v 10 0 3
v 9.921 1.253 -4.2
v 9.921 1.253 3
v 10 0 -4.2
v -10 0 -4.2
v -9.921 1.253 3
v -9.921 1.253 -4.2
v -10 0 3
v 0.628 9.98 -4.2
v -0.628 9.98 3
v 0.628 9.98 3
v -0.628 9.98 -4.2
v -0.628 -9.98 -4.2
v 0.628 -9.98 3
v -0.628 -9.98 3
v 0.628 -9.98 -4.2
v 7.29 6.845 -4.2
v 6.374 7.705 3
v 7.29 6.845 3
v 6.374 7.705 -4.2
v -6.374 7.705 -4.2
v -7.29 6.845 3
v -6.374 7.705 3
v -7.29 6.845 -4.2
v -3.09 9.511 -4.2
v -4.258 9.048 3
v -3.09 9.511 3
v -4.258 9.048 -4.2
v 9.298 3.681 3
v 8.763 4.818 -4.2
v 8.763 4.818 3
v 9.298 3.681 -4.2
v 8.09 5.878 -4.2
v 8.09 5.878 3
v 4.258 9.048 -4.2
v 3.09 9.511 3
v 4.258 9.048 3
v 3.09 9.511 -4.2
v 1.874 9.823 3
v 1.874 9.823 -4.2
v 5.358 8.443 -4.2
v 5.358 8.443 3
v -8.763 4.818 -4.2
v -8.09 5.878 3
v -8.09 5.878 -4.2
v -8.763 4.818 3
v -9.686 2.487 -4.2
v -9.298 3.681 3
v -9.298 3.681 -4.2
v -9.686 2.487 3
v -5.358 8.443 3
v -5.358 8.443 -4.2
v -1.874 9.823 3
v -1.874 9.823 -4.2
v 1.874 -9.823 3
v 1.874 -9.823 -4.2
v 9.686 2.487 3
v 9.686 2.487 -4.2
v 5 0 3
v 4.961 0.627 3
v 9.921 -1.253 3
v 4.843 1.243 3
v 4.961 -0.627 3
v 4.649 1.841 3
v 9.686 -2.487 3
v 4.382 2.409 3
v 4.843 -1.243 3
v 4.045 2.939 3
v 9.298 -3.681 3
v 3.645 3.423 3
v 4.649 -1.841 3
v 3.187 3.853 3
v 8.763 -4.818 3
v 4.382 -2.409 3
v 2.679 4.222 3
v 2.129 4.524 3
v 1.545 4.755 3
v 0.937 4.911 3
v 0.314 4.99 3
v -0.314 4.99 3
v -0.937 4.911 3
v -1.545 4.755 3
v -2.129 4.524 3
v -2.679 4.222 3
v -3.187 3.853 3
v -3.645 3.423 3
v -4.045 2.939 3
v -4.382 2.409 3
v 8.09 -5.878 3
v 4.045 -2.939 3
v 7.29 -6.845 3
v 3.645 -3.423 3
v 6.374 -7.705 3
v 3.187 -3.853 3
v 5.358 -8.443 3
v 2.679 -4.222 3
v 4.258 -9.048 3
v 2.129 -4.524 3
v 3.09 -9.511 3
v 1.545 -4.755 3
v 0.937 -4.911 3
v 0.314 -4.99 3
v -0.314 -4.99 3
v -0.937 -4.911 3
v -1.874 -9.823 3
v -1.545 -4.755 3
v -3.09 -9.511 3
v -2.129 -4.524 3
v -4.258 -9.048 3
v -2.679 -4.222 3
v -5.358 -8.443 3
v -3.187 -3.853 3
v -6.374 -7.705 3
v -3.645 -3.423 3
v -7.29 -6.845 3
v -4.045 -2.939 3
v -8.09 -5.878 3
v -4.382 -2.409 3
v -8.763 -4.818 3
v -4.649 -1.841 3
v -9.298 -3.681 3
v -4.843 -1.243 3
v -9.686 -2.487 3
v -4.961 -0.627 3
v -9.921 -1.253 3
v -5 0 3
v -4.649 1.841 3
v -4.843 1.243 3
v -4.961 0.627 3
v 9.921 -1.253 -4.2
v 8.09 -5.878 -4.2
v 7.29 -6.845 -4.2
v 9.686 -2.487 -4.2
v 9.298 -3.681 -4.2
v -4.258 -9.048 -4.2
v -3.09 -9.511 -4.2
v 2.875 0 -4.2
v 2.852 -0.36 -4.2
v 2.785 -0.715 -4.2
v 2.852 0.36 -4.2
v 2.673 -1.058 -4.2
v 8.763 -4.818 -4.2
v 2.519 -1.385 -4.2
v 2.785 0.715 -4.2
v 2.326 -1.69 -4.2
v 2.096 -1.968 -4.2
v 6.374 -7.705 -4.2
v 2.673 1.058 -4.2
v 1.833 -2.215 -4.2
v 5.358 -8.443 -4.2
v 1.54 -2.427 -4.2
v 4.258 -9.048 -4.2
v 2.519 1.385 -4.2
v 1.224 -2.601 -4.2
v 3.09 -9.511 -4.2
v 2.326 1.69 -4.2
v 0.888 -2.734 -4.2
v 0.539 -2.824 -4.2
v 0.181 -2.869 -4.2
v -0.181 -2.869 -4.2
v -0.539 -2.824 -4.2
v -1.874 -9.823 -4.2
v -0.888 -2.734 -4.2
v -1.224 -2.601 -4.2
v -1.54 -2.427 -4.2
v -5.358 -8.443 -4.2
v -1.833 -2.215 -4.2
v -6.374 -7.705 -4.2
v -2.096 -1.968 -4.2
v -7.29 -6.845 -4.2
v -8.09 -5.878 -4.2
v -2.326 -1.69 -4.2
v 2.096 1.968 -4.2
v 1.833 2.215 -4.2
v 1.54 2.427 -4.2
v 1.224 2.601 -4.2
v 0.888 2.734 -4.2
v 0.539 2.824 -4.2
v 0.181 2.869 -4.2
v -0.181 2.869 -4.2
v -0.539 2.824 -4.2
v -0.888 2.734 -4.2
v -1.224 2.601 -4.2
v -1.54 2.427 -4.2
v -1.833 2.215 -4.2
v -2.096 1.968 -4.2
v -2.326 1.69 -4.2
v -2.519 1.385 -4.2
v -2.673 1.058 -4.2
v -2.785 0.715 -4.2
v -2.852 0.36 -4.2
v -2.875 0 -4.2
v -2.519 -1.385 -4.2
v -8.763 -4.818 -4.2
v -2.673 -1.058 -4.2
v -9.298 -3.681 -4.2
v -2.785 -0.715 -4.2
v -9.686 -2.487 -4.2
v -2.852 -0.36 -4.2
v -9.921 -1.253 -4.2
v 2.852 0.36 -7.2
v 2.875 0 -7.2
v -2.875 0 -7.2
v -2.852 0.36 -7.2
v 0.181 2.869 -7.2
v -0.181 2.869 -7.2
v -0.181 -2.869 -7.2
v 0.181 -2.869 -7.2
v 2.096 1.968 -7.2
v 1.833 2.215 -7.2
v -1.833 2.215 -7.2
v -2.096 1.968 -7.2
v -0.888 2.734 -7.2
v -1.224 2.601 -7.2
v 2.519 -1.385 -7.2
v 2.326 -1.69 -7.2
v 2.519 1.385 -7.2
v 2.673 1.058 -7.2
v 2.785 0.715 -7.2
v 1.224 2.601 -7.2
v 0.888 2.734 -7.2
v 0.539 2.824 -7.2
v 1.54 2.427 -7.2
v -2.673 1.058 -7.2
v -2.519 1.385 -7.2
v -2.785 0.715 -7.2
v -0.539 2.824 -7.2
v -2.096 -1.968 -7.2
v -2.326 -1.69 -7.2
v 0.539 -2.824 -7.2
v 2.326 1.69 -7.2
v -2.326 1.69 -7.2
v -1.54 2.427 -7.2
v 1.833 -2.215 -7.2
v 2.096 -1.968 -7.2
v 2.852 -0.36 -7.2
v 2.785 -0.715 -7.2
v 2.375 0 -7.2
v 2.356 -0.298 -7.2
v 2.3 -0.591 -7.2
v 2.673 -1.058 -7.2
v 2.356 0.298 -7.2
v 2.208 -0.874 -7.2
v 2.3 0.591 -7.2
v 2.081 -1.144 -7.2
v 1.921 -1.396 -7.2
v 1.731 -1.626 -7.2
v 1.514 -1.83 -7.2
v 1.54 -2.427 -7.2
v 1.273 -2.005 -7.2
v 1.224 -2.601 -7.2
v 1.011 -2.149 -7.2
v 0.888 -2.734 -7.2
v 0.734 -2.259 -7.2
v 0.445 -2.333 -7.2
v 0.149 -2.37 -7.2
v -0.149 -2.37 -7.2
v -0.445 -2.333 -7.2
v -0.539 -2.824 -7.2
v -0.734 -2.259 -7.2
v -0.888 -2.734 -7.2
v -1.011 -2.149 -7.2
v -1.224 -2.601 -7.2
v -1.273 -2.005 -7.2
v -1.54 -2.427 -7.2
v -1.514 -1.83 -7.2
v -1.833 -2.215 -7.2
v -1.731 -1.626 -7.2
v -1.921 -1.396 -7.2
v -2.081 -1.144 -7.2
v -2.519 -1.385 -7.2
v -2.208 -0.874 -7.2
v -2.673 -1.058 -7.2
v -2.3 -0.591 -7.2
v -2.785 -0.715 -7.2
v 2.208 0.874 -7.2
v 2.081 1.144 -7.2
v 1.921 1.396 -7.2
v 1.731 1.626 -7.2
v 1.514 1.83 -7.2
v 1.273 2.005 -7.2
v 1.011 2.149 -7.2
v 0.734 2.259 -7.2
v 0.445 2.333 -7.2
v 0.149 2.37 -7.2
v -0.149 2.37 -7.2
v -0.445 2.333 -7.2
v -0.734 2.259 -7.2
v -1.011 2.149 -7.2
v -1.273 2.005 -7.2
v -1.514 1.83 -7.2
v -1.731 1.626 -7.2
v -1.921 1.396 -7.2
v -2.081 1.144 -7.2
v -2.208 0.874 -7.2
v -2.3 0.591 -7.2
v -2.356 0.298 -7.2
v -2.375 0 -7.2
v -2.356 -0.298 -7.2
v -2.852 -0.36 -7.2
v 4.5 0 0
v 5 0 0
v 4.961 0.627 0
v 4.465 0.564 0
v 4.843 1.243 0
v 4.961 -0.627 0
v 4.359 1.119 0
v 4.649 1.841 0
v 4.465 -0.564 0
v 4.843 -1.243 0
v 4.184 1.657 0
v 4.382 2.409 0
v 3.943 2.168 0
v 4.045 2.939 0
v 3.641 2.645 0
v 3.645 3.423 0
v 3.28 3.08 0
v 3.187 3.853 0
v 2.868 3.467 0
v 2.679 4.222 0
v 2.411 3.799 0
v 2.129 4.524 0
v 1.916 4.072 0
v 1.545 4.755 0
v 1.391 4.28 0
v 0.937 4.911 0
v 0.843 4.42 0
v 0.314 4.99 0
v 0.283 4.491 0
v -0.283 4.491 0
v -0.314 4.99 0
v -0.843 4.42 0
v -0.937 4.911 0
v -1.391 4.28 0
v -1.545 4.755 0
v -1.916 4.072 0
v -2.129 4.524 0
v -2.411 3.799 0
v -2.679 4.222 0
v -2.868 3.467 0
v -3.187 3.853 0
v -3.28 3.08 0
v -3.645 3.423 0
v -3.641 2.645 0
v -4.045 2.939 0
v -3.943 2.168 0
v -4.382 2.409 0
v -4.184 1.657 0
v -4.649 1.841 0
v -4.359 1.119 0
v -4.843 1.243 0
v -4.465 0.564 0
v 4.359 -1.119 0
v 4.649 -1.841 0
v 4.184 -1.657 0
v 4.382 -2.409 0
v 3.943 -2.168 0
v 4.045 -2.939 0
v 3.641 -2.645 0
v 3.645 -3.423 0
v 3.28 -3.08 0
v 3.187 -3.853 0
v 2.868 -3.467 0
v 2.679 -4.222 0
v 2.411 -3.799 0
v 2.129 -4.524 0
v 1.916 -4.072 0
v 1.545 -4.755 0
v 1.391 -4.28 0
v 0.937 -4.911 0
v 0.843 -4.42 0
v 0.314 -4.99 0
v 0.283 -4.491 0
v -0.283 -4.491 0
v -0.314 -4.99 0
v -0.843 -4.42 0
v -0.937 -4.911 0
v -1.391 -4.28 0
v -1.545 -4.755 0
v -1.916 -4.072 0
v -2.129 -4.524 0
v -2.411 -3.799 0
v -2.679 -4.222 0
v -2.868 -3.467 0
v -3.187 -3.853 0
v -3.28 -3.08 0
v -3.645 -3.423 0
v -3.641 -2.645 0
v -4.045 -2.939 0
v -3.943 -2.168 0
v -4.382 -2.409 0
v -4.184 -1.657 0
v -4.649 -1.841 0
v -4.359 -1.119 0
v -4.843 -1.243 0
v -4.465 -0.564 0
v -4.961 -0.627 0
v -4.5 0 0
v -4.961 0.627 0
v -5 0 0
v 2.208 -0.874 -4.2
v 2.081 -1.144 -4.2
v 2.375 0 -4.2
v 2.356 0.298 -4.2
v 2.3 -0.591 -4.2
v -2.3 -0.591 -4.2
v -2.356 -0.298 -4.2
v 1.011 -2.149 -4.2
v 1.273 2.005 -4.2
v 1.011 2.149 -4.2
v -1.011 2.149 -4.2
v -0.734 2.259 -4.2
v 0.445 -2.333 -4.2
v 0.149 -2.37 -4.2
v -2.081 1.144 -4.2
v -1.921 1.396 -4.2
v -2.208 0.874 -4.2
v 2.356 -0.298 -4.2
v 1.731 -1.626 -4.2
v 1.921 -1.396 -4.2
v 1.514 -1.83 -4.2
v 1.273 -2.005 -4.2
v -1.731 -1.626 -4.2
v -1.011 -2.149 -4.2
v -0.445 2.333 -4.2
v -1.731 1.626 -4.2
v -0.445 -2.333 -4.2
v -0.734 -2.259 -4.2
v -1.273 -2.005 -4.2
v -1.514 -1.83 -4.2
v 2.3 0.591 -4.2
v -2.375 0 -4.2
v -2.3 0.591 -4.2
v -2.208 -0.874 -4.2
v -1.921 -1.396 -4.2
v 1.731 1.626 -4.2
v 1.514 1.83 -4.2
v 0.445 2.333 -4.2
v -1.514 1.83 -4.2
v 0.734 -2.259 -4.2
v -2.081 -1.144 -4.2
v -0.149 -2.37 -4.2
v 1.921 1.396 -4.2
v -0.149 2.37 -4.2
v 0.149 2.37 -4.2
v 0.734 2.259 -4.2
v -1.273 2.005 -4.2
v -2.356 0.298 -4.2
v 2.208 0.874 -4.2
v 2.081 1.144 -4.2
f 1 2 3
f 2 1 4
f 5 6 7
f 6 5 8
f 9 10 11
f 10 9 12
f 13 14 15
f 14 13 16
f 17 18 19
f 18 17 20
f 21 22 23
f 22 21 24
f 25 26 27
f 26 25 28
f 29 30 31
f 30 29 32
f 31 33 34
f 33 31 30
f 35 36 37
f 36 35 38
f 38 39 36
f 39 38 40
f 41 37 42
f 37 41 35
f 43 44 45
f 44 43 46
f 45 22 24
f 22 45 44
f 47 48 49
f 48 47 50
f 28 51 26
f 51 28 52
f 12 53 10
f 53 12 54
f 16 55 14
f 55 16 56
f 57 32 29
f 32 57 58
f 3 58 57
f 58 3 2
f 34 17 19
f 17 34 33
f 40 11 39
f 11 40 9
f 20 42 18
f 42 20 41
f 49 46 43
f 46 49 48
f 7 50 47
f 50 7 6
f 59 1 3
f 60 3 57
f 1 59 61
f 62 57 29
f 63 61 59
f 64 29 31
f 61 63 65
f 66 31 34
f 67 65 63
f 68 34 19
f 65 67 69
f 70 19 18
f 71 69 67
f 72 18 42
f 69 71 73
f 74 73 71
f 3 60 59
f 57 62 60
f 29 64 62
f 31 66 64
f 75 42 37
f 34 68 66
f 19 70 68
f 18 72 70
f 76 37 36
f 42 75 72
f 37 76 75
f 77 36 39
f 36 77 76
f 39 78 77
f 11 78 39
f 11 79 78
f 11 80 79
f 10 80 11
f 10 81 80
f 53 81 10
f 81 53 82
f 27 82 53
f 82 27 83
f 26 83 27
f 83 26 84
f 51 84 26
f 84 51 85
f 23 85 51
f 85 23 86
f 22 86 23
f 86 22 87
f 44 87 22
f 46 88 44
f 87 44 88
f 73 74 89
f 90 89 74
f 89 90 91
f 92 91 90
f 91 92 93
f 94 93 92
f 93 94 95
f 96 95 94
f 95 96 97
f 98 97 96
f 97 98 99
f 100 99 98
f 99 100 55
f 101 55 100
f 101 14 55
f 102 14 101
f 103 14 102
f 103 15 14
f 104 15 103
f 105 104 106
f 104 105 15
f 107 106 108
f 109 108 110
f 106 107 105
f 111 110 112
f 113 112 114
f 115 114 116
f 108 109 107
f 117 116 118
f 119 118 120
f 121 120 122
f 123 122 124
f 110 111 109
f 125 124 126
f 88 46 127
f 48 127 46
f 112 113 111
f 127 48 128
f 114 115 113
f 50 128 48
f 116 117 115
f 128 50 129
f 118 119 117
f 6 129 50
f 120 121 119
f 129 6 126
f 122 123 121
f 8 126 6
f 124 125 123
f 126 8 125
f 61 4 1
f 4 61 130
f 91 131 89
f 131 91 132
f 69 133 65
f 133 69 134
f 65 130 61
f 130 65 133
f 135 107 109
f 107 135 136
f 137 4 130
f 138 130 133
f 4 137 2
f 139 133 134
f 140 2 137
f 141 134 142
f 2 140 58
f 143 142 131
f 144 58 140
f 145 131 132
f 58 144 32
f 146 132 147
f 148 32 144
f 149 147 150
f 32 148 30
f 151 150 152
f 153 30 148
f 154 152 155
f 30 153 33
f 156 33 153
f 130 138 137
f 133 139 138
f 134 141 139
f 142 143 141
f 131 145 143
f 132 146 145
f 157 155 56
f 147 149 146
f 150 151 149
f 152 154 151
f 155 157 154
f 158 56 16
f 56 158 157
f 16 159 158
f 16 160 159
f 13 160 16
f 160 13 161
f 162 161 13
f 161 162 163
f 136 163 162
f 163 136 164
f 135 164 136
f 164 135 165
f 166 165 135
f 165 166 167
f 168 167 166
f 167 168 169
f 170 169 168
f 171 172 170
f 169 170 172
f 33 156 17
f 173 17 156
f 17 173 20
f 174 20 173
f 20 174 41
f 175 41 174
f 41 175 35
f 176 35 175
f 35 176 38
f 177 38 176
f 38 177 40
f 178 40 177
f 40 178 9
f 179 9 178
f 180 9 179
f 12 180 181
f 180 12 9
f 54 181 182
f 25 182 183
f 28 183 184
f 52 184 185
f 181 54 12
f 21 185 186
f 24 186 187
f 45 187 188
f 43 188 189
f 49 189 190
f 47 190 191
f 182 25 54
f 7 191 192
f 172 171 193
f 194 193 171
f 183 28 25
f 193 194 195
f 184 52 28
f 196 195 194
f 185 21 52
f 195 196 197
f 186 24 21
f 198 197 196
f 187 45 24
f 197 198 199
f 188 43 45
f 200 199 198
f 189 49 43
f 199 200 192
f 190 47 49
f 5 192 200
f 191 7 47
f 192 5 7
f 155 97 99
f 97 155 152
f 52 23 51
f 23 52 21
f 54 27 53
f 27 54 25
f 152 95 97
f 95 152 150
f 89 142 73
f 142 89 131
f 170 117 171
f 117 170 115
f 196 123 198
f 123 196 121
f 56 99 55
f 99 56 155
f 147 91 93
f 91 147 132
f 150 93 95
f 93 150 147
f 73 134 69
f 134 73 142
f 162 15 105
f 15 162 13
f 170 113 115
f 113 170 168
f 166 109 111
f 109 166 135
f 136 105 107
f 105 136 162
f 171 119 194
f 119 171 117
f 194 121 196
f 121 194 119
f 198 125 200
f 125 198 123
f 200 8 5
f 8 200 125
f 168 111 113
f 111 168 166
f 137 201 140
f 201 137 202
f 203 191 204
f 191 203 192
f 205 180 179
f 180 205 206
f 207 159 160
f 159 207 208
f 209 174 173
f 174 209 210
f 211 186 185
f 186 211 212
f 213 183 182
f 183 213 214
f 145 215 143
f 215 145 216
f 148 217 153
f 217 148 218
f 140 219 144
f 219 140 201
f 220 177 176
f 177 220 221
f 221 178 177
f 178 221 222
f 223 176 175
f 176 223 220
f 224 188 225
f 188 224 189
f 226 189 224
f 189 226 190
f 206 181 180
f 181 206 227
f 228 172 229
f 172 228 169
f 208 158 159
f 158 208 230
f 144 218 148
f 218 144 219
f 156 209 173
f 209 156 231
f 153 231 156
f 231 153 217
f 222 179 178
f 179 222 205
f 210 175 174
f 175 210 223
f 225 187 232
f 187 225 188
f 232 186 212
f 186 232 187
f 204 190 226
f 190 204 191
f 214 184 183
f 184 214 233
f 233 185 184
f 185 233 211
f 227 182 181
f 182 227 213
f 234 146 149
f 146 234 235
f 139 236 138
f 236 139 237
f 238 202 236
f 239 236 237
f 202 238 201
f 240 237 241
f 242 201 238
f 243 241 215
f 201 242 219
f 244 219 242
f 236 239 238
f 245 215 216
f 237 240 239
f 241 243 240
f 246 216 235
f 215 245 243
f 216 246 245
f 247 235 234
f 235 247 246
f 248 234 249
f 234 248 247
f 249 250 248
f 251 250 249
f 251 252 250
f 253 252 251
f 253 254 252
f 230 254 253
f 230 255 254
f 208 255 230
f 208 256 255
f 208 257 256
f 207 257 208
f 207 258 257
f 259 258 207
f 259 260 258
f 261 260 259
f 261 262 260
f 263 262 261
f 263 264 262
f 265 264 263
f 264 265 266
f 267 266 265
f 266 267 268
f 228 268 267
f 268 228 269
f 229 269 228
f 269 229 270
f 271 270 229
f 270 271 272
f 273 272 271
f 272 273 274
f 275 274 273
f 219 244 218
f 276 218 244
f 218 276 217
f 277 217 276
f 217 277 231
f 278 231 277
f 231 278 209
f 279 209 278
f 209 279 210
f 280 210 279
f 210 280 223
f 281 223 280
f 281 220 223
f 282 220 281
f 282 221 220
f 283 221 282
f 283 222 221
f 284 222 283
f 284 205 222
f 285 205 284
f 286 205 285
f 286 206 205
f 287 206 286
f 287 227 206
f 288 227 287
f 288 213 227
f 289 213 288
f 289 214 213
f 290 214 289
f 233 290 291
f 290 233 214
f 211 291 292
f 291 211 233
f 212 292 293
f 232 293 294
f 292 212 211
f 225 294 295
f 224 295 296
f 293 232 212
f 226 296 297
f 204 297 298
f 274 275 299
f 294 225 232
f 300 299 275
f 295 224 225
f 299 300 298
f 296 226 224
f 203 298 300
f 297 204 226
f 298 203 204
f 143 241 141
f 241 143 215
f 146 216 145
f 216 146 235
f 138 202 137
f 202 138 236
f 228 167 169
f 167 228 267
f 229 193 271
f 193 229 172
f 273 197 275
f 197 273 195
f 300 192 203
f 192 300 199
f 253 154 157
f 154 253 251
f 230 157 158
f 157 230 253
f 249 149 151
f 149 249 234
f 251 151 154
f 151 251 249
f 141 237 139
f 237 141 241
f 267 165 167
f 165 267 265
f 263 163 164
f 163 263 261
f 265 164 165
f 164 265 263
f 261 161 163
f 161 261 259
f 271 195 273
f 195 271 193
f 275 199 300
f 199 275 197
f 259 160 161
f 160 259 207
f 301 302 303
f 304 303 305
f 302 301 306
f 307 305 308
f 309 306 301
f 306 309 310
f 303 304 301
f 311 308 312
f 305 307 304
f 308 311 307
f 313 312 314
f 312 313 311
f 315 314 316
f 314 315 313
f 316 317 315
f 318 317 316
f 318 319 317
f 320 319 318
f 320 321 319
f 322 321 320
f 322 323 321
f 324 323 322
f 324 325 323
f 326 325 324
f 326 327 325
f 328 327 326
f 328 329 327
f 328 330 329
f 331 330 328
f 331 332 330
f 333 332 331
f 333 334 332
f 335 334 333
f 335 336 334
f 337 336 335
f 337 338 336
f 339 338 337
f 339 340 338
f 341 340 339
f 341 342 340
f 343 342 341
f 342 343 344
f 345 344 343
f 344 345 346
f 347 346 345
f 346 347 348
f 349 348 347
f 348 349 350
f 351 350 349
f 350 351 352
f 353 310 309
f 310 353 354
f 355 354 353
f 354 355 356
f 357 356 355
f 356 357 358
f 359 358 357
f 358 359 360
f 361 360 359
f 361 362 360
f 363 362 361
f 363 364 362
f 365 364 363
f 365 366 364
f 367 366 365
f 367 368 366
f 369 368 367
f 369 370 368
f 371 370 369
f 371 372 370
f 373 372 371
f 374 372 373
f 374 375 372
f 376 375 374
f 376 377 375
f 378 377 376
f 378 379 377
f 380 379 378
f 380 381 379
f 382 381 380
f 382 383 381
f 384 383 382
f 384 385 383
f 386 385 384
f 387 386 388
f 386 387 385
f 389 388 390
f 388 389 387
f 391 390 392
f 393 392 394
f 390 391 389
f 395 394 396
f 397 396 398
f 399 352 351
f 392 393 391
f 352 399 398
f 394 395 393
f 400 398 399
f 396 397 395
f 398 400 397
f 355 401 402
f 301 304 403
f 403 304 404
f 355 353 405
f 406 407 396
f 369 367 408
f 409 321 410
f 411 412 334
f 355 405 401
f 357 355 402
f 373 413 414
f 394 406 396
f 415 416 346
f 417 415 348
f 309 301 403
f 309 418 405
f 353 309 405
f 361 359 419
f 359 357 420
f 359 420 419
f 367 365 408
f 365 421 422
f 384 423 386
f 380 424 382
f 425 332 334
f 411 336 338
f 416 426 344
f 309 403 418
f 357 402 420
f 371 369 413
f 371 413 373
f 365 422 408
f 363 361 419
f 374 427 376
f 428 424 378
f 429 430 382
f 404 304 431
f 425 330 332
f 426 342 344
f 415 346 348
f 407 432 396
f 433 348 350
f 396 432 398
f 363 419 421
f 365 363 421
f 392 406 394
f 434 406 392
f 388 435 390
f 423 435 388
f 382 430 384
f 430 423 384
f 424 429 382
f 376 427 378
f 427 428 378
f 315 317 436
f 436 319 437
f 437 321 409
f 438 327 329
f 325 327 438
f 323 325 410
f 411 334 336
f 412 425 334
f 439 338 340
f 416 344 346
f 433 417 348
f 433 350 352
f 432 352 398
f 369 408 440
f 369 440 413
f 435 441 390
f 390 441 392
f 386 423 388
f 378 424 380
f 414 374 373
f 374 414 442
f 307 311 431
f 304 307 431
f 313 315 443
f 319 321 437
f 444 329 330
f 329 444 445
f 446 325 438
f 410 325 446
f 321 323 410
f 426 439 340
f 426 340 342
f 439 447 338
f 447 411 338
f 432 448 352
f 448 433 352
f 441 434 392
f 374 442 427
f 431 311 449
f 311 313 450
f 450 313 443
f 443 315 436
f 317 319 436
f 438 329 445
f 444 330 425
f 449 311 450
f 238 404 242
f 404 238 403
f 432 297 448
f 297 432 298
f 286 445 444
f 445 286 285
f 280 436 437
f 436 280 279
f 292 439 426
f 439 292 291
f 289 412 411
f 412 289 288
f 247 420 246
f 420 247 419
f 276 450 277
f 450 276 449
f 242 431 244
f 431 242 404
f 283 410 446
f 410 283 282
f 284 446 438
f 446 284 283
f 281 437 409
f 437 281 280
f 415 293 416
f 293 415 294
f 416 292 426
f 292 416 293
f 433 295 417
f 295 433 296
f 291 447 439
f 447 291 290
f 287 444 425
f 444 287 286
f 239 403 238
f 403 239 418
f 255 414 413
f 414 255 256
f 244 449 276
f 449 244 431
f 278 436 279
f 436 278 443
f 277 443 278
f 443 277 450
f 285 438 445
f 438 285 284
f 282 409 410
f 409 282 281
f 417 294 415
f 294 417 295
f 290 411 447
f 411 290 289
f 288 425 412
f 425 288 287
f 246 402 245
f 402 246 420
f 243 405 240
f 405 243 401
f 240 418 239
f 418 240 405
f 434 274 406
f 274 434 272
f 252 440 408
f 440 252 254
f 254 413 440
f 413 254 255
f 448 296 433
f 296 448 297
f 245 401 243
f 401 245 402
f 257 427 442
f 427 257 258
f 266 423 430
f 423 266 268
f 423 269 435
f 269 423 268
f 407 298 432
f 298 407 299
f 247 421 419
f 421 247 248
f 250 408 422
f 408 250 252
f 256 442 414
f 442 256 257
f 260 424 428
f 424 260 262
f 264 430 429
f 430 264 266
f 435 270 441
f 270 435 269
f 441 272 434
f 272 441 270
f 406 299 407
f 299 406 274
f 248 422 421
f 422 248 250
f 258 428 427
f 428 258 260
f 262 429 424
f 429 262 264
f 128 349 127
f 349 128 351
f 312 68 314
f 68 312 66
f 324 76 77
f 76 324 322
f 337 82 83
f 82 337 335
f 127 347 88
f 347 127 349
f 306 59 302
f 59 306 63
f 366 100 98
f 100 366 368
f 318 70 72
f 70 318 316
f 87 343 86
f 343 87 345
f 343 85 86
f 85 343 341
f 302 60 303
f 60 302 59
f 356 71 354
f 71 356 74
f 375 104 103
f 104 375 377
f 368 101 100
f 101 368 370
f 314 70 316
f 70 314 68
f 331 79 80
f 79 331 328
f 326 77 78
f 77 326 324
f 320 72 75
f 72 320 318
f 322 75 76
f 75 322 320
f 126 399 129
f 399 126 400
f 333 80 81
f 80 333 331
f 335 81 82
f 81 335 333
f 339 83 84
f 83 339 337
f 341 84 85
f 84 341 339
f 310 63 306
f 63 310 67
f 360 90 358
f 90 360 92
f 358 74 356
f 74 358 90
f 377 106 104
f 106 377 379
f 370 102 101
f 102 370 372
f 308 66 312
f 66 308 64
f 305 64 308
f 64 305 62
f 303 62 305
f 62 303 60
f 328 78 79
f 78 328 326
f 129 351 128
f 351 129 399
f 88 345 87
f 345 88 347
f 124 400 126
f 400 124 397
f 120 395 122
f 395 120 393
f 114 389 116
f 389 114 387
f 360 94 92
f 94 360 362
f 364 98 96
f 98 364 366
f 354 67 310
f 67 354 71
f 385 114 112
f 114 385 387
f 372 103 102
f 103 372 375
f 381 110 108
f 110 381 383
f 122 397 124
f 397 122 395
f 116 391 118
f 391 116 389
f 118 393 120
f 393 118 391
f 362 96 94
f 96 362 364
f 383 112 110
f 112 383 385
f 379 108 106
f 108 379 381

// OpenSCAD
$fn = 50;


difference() {
	union() {
		translate(v = [0, 0, -4.2000000000]) {
			cylinder(h = 7.2000000000, r = 10.0000000000);
		}
		#translate(v = [0, 0, -7.2000000000]) {
			cylinder(h = 7.2000000000, r = 2.8750000000);
		}
	}
	union() {
		translate(v = [0, 0, 0]) {
			rotate(a = [0, 0, 0]) {
				difference() {
					union() {
						translate(v = [0, 0, -7.2000000000]) {
							cylinder(h = 7.2000000000, r = 2.2500000000);
						}
						translate(v = [0, 0, -4.2000000000]) {
							cylinder(h = 4.2000000000, r1 = 2.3750000000, r2 = 4.5000000000);
						}
						translate(v = [0, 0, -7.2000000000]) {
							cylinder(h = 7.2000000000, r = 2.3750000000);
						}
						translate(v = [0, 0, -7.2000000000]) {
							cylinder(h = 7.2000000000, r = 2.2500000000);
						}
					}
					union();
				}
			}
		}
		#cylinder(h = 3, r = 5.0000000000);
	}
}
